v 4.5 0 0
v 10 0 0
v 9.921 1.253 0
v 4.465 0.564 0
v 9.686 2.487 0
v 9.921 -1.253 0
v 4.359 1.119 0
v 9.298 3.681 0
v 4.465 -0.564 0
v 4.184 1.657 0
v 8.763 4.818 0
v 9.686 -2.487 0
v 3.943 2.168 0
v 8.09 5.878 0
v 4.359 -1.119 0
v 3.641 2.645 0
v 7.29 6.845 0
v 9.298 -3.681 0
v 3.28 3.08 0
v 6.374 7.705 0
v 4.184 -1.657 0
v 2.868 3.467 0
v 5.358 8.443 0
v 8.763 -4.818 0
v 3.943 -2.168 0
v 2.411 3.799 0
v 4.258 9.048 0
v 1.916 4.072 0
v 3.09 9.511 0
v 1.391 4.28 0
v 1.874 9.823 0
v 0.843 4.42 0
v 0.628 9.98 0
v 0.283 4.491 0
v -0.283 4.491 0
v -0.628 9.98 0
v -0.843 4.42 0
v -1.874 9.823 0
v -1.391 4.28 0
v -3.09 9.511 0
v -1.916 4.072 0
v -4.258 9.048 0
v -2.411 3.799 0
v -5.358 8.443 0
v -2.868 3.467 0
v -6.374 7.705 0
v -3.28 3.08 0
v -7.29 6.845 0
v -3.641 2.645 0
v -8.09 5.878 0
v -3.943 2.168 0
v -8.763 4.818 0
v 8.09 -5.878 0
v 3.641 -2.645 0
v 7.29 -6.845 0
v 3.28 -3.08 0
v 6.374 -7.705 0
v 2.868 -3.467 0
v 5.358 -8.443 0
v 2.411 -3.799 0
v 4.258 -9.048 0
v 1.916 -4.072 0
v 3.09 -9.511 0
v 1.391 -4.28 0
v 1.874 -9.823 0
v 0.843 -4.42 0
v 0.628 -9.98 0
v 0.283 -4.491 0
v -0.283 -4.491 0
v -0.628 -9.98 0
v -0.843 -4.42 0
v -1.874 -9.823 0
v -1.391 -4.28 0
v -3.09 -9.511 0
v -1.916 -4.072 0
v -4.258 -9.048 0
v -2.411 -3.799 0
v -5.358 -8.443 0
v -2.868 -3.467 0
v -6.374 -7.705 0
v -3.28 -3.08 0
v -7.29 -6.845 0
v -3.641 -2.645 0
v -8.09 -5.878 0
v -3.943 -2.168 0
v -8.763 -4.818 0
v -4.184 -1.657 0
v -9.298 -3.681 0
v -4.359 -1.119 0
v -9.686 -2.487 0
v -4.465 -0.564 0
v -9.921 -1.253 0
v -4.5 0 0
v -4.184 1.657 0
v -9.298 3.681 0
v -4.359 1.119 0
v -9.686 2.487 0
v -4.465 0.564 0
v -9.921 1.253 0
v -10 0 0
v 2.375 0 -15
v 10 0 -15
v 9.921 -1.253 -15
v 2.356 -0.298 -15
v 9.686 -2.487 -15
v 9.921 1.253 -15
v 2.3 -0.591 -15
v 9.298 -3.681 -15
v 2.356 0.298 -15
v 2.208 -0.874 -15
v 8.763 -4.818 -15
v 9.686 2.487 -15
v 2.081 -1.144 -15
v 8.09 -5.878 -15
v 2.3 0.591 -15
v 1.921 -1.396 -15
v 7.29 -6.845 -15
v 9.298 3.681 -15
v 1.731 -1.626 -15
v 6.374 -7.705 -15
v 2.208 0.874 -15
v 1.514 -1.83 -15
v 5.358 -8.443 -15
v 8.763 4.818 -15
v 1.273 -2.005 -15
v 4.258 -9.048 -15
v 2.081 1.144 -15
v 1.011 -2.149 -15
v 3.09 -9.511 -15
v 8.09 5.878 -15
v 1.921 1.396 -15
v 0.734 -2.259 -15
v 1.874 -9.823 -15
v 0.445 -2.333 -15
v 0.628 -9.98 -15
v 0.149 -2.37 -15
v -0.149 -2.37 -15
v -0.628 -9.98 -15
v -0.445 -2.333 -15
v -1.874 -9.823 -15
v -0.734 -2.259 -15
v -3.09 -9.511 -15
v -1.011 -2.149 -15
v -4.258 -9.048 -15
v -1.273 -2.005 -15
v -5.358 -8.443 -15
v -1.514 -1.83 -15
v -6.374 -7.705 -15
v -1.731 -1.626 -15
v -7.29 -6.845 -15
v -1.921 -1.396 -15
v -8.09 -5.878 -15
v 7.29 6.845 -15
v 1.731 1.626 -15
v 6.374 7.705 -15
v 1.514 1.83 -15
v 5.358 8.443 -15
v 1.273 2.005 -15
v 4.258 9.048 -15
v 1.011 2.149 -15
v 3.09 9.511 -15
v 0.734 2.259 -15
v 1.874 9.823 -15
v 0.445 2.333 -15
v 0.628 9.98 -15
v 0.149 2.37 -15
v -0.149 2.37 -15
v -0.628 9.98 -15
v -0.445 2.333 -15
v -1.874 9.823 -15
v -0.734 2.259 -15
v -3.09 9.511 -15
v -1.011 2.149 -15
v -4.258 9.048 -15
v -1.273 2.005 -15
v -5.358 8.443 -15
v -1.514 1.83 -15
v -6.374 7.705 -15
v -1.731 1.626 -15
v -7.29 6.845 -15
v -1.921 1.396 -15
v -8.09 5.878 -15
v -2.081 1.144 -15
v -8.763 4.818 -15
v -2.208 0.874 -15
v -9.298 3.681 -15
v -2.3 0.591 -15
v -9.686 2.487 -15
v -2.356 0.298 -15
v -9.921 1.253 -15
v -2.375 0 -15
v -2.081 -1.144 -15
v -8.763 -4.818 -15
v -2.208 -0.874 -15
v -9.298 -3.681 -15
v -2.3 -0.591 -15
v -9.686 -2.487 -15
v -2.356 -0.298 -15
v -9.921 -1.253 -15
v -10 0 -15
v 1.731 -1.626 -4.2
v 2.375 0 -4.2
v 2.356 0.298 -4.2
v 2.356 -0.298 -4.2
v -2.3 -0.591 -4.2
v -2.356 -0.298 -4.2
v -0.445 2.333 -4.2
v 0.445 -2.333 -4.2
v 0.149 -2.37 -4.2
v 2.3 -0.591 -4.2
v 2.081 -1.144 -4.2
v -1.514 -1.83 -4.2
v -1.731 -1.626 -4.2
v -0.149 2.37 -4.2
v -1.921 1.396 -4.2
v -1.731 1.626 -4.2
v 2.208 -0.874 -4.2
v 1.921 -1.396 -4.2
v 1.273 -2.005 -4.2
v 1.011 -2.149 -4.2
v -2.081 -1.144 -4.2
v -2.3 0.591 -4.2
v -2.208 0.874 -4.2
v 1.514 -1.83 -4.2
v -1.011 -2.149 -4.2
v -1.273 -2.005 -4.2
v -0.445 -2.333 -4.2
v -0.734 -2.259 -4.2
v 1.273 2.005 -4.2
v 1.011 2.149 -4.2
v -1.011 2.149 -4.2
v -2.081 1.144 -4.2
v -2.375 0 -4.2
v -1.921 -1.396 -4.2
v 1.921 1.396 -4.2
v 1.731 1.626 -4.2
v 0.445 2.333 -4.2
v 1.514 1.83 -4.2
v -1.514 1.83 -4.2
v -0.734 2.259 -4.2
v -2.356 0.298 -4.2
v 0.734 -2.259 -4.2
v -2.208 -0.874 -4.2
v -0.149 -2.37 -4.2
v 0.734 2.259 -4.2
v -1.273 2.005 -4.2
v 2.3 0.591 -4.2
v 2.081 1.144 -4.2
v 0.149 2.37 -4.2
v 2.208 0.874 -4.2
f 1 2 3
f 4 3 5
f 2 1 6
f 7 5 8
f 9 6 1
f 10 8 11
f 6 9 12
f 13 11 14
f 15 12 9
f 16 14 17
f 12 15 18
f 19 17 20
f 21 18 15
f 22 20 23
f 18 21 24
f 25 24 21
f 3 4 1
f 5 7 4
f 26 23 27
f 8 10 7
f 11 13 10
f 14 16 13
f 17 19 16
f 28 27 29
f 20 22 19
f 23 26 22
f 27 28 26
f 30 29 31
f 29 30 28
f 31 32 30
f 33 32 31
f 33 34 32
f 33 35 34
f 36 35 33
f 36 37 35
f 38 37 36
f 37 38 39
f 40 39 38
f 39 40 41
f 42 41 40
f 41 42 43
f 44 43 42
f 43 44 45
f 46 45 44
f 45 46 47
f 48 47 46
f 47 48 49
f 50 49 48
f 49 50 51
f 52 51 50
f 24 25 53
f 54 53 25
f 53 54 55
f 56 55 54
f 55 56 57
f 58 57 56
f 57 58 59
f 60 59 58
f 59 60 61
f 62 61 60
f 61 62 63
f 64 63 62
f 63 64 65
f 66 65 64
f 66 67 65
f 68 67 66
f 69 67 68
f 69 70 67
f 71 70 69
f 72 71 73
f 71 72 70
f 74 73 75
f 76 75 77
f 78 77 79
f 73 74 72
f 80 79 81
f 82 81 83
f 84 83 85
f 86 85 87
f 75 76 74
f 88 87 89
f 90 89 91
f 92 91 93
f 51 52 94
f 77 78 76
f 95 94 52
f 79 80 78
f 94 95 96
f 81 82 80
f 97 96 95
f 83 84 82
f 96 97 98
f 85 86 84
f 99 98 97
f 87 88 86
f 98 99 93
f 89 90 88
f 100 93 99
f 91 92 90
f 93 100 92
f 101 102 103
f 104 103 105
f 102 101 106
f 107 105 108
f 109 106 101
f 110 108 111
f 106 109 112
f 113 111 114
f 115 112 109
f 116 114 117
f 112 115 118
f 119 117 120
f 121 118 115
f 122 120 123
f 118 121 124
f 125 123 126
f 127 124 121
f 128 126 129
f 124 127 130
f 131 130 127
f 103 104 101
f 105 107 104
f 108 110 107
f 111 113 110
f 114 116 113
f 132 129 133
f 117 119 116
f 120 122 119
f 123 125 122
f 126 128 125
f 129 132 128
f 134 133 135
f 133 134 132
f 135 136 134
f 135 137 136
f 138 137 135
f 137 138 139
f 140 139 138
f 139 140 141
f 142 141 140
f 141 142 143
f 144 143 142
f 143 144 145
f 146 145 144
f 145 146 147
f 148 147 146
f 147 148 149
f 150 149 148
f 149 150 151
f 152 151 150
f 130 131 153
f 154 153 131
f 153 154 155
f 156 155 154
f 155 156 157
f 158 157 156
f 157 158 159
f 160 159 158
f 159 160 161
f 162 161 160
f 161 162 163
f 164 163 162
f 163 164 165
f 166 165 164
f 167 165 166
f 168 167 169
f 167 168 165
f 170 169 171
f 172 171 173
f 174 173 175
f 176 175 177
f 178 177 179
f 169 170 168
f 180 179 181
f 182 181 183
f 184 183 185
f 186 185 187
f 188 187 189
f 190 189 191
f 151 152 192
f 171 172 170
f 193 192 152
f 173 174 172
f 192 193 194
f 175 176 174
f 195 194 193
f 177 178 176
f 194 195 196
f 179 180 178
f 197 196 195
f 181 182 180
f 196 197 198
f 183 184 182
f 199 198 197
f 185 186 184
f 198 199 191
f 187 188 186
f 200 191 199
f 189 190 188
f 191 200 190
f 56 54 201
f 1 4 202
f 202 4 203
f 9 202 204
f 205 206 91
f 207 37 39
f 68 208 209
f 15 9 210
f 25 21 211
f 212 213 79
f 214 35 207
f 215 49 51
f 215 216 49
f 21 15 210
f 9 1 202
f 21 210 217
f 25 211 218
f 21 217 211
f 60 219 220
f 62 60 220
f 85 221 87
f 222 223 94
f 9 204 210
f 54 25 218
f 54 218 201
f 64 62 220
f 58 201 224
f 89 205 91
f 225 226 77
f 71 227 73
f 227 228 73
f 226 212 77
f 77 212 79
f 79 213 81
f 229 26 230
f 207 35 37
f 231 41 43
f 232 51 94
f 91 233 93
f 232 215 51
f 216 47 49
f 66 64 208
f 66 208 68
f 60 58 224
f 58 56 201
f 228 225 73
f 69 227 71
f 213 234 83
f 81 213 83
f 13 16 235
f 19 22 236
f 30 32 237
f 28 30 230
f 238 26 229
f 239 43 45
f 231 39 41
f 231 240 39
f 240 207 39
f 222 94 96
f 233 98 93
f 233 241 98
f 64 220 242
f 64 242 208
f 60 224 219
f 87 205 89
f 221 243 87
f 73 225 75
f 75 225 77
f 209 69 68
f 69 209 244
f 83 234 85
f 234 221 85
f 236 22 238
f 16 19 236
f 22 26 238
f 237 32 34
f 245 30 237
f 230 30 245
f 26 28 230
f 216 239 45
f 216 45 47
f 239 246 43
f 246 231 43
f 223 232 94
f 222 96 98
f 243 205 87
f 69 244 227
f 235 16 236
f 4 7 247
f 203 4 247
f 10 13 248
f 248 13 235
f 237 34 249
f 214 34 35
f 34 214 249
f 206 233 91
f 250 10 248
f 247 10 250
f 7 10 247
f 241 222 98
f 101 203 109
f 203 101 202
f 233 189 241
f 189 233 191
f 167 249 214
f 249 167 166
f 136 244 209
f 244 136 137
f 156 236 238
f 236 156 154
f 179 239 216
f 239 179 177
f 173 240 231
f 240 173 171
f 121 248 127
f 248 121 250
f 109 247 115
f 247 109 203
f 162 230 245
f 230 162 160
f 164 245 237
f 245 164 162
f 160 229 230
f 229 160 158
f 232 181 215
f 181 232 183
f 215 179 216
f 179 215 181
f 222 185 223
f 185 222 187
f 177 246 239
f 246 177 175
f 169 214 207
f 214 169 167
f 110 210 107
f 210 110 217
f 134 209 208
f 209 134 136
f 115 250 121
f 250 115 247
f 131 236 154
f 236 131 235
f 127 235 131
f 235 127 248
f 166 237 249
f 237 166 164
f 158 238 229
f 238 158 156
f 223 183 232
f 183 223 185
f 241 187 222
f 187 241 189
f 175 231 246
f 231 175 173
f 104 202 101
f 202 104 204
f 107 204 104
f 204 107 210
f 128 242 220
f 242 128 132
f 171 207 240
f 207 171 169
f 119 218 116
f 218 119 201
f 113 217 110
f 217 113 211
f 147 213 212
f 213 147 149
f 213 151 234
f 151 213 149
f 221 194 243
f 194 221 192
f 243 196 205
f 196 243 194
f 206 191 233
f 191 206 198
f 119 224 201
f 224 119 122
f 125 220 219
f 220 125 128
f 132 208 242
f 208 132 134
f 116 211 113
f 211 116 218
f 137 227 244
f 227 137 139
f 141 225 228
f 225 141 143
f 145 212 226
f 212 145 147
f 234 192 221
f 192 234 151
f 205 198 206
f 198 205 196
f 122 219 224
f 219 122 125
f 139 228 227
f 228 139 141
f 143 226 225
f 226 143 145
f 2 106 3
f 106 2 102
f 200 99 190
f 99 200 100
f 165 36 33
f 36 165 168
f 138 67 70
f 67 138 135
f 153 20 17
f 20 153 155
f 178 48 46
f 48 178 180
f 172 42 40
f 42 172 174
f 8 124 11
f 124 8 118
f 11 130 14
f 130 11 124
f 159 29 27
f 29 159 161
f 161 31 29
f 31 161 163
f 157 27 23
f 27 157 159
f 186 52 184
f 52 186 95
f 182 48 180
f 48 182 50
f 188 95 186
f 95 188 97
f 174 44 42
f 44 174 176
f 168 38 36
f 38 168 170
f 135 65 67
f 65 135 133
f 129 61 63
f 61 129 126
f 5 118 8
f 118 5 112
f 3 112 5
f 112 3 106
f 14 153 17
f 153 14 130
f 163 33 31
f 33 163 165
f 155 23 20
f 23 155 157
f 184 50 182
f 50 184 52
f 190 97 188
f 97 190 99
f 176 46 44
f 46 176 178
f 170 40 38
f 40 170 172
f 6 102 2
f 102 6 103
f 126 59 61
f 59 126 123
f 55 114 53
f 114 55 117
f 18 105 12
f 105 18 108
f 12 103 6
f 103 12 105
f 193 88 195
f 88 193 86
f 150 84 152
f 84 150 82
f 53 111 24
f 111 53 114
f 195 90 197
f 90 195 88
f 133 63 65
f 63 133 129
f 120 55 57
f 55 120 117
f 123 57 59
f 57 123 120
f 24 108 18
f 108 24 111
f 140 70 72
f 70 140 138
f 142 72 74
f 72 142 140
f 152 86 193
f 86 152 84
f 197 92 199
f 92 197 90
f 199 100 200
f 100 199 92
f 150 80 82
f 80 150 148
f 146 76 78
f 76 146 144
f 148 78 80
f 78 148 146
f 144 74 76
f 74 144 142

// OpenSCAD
$fn = 50;


difference() {
	union() {
		translate(v = [0, 0, -15.0000000000]) {
			cylinder(h = 15, r = 10.0000000000);
		}
		cylinder(h = 0, r = 13.0000000000);
	}
	union() {
		translate(v = [0, 0, 0]) {
			rotate(a = [0, 0, 0]) {
				difference() {
					union() {
						#translate(v = [0, 0, -15.0000000000]) {
							cylinder(h = 15, r = 2.2500000000);
						}
						#translate(v = [0, 0, -4.2000000000]) {
							cylinder(h = 4.2000000000, r1 = 2.3750000000, r2 = 4.5000000000);
						}
						#translate(v = [0, 0, -15.0000000000]) {
							cylinder(h = 15, r = 2.3750000000);
						}
						#translate(v = [0, 0, -15.0000000000]) {
							cylinder(h = 15, r = 2.2500000000);
						}
					}
					union();
				}
			}
		}
	}
}
